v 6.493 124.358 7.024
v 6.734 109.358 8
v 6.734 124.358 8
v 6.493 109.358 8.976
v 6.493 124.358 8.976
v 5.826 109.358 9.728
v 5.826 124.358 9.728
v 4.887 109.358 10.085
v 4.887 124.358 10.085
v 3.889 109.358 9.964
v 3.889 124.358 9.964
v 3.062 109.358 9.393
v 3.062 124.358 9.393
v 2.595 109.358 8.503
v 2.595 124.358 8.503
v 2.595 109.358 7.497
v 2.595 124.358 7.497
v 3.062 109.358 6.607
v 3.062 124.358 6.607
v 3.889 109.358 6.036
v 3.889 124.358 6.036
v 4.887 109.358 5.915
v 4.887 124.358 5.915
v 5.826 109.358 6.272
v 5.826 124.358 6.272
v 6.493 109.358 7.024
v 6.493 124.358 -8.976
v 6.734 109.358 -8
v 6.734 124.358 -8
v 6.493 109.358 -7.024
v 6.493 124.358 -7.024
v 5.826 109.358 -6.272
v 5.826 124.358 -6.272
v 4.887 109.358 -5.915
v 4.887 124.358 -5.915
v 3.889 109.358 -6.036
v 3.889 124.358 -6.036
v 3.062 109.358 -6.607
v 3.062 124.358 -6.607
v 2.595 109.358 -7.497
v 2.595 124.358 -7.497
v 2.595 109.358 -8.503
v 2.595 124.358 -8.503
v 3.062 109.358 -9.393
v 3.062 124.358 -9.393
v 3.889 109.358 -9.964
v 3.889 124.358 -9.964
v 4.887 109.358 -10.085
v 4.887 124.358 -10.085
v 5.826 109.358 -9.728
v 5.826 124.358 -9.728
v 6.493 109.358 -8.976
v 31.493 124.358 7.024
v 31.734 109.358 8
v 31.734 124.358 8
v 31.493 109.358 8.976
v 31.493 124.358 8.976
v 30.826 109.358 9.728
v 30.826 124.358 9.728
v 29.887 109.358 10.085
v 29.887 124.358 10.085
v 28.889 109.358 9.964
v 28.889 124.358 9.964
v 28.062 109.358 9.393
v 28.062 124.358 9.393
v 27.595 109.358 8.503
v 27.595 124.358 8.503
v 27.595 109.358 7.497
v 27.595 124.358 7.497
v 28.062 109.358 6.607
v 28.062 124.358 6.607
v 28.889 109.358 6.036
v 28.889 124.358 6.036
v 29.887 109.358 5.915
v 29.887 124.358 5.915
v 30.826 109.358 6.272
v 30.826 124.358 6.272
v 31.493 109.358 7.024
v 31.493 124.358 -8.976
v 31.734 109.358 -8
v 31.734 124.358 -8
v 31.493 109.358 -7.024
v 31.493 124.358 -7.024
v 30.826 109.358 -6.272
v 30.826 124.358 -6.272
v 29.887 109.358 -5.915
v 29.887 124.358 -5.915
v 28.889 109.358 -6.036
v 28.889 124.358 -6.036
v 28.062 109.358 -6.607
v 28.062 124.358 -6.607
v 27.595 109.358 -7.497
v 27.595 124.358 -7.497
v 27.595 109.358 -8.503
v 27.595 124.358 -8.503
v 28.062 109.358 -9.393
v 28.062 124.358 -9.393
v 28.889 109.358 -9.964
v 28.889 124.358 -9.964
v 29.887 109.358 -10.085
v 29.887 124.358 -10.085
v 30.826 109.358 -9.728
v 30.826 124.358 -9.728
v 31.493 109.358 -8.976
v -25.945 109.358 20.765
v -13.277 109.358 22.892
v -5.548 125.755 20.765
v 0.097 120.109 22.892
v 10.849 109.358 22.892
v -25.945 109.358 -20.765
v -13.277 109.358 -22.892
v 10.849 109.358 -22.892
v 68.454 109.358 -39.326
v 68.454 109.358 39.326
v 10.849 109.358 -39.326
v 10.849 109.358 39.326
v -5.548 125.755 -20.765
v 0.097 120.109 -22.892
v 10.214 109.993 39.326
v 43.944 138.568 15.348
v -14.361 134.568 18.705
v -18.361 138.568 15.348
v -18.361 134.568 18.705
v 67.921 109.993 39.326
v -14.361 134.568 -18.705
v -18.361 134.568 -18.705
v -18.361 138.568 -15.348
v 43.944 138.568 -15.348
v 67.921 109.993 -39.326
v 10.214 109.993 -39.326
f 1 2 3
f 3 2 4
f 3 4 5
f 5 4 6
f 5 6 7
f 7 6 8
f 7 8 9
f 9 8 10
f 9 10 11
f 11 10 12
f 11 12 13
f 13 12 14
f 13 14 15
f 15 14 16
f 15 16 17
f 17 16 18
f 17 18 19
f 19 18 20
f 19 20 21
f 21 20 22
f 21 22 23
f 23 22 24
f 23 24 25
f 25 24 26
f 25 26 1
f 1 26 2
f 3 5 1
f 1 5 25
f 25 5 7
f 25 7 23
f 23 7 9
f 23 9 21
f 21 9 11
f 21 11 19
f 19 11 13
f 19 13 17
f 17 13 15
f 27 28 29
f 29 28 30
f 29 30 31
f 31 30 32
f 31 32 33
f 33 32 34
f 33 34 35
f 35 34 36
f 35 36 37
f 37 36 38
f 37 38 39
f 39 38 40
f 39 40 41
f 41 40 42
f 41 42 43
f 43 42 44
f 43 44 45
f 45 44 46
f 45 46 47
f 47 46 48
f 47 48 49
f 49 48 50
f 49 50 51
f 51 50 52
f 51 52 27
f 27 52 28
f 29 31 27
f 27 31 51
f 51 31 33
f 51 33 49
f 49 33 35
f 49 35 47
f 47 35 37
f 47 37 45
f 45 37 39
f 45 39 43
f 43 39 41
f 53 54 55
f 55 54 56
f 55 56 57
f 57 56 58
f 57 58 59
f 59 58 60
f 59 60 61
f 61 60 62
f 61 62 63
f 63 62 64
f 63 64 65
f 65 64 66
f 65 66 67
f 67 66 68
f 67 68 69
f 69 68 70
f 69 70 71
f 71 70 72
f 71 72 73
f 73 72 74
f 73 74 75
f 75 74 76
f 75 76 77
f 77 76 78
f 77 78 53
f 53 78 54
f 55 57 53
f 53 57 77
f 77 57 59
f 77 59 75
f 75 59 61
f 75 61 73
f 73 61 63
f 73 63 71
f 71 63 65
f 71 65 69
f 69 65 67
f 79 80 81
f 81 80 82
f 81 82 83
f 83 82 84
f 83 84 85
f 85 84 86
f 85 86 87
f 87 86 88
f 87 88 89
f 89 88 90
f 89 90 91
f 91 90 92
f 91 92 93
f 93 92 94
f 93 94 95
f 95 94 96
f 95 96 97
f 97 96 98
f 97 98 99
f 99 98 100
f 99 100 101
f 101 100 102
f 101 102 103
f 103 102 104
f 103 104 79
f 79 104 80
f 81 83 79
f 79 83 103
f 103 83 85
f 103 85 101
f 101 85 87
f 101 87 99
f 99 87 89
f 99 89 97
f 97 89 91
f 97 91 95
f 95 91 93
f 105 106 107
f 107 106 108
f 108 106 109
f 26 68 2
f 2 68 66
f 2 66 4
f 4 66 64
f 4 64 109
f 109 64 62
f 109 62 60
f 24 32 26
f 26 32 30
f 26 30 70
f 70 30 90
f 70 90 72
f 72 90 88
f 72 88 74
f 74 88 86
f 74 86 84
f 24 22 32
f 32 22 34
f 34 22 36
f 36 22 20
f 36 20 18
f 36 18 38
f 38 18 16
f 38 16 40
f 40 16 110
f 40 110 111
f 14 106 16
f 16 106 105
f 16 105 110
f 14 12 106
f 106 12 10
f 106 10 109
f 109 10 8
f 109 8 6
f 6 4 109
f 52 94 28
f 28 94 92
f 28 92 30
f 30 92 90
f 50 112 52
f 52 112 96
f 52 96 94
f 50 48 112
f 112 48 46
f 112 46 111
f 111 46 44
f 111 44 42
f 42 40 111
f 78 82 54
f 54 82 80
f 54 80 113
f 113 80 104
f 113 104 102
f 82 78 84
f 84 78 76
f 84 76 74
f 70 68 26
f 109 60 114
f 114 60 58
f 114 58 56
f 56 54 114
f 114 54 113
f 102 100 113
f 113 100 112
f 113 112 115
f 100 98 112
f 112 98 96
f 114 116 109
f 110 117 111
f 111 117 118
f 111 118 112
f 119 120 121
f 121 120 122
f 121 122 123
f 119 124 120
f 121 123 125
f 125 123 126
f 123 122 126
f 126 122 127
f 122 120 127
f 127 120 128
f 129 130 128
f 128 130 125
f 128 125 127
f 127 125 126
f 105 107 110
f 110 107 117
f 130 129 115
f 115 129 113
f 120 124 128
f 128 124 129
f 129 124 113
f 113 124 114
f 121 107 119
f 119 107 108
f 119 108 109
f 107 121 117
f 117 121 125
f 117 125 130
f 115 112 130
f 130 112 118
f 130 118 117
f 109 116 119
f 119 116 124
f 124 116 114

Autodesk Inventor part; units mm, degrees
ref_plane "YZ Plane" through (0, 0, 0) normal (1, 0, 0) x (0, 1, 0)
ref_plane "XZ Plane" through (0, 0, 0) normal (0, 1, 0) x (-1, 0, 0)
ref_plane "XY Plane" through (0, 0, 0) normal (0, 0, 1) x (1, 0, 0)
ref_plane "Work Plane1" through (0, 0, 0) normal (0, 0, 1) x (1, 0, 0)
sketch "Sketch1" plane through (0, 0, 0) normal (0, 0, 1) x (1, 0, 0)
  line L0 (-38.0834, 109.3576) -> (68.9757, 109.3576) projected
  line L1 (-38.0834, 138.5676) -> (68.9757, 138.5676)
  line L2 (68.4541, 109.3576) -> (43.944, 138.5676)
  line L3 (68.4541, 109.3576) -> (106.585, 109.3576) construction
  line L4 (-18.3608, 138.5676) -> (-18.3608, 134.5676)
  line L5 (-18.3608, 134.5676) -> (-14.3608, 134.5676)
  line L6 (-14.3608, 134.5676) -> (10.8492, 109.3576)
  point P0 (0, 0)
  dimension "d0" = 29.21
  dimension "d1" = 130
  dimension "d2" = 4
  dimension "d3" = 4
extrude "Extrusion1" add sketch "Sketch1" along normal mid plane 78.6511
sketch "Sketch2" plane through (0, 0, 0) normal (0, 0, 1) x (1, 0, 0)
  line L0 (-38.0834, 109.3576) -> (68.9757, 109.3576) projected
  line L1 (10.8492, 109.3576) -> (-14.3608, 134.5676) projected
  line L2 (-5.5484, 125.7552) -> (-25.9454, 109.3576)
  point P0 (0, 0)
extrude "Extrusion2" add sketch "Sketch2" along normal mid plane 45.7835
chamfer "Chamfer1" distance 28.575 angle 40 1 edges at (12.7916, 138.5676, -39.3255) measured on face at (41.0824, 119.0943, -39.3256)
chamfer "Chamfer2" distance 28.575 angle 40 1 edges at (12.7916, 138.5676, 39.3255) measured on face at (41.0824, 119.0943, 39.3256)
chamfer "Chamfer3" distance 7.9375 angle 15 1 edges at (-15.7469, 117.5564, -22.8918) measured on face at (-6.8815, 114.8235, -22.8918)
chamfer "Chamfer4" distance 7.9375 angle 15 1 edges at (-15.7469, 117.5564, 22.8918) measured on face at (-6.8815, 114.8235, 22.8918)
sketch "Sketch3" plane through (10.8492, 109.3576, -39.3255) normal (0, -1, 0) x (1, 0, 0)
  circle A0 centre (18.7843, 31.3255) radius 2.1 projected
  circle A1 centre (-6.2157, 31.3255) radius 2.1 projected
  circle A2 centre (-6.2157, 47.3255) radius 2.1 projected
  circle A3 centre (18.7843, 47.3255) radius 2.1 projected
  point P0 (-10.8492, 39.3255)
extrude "Extrusion3" cut sketch "Sketch3" against normal blind 15
properties part number "Head_Fin"
